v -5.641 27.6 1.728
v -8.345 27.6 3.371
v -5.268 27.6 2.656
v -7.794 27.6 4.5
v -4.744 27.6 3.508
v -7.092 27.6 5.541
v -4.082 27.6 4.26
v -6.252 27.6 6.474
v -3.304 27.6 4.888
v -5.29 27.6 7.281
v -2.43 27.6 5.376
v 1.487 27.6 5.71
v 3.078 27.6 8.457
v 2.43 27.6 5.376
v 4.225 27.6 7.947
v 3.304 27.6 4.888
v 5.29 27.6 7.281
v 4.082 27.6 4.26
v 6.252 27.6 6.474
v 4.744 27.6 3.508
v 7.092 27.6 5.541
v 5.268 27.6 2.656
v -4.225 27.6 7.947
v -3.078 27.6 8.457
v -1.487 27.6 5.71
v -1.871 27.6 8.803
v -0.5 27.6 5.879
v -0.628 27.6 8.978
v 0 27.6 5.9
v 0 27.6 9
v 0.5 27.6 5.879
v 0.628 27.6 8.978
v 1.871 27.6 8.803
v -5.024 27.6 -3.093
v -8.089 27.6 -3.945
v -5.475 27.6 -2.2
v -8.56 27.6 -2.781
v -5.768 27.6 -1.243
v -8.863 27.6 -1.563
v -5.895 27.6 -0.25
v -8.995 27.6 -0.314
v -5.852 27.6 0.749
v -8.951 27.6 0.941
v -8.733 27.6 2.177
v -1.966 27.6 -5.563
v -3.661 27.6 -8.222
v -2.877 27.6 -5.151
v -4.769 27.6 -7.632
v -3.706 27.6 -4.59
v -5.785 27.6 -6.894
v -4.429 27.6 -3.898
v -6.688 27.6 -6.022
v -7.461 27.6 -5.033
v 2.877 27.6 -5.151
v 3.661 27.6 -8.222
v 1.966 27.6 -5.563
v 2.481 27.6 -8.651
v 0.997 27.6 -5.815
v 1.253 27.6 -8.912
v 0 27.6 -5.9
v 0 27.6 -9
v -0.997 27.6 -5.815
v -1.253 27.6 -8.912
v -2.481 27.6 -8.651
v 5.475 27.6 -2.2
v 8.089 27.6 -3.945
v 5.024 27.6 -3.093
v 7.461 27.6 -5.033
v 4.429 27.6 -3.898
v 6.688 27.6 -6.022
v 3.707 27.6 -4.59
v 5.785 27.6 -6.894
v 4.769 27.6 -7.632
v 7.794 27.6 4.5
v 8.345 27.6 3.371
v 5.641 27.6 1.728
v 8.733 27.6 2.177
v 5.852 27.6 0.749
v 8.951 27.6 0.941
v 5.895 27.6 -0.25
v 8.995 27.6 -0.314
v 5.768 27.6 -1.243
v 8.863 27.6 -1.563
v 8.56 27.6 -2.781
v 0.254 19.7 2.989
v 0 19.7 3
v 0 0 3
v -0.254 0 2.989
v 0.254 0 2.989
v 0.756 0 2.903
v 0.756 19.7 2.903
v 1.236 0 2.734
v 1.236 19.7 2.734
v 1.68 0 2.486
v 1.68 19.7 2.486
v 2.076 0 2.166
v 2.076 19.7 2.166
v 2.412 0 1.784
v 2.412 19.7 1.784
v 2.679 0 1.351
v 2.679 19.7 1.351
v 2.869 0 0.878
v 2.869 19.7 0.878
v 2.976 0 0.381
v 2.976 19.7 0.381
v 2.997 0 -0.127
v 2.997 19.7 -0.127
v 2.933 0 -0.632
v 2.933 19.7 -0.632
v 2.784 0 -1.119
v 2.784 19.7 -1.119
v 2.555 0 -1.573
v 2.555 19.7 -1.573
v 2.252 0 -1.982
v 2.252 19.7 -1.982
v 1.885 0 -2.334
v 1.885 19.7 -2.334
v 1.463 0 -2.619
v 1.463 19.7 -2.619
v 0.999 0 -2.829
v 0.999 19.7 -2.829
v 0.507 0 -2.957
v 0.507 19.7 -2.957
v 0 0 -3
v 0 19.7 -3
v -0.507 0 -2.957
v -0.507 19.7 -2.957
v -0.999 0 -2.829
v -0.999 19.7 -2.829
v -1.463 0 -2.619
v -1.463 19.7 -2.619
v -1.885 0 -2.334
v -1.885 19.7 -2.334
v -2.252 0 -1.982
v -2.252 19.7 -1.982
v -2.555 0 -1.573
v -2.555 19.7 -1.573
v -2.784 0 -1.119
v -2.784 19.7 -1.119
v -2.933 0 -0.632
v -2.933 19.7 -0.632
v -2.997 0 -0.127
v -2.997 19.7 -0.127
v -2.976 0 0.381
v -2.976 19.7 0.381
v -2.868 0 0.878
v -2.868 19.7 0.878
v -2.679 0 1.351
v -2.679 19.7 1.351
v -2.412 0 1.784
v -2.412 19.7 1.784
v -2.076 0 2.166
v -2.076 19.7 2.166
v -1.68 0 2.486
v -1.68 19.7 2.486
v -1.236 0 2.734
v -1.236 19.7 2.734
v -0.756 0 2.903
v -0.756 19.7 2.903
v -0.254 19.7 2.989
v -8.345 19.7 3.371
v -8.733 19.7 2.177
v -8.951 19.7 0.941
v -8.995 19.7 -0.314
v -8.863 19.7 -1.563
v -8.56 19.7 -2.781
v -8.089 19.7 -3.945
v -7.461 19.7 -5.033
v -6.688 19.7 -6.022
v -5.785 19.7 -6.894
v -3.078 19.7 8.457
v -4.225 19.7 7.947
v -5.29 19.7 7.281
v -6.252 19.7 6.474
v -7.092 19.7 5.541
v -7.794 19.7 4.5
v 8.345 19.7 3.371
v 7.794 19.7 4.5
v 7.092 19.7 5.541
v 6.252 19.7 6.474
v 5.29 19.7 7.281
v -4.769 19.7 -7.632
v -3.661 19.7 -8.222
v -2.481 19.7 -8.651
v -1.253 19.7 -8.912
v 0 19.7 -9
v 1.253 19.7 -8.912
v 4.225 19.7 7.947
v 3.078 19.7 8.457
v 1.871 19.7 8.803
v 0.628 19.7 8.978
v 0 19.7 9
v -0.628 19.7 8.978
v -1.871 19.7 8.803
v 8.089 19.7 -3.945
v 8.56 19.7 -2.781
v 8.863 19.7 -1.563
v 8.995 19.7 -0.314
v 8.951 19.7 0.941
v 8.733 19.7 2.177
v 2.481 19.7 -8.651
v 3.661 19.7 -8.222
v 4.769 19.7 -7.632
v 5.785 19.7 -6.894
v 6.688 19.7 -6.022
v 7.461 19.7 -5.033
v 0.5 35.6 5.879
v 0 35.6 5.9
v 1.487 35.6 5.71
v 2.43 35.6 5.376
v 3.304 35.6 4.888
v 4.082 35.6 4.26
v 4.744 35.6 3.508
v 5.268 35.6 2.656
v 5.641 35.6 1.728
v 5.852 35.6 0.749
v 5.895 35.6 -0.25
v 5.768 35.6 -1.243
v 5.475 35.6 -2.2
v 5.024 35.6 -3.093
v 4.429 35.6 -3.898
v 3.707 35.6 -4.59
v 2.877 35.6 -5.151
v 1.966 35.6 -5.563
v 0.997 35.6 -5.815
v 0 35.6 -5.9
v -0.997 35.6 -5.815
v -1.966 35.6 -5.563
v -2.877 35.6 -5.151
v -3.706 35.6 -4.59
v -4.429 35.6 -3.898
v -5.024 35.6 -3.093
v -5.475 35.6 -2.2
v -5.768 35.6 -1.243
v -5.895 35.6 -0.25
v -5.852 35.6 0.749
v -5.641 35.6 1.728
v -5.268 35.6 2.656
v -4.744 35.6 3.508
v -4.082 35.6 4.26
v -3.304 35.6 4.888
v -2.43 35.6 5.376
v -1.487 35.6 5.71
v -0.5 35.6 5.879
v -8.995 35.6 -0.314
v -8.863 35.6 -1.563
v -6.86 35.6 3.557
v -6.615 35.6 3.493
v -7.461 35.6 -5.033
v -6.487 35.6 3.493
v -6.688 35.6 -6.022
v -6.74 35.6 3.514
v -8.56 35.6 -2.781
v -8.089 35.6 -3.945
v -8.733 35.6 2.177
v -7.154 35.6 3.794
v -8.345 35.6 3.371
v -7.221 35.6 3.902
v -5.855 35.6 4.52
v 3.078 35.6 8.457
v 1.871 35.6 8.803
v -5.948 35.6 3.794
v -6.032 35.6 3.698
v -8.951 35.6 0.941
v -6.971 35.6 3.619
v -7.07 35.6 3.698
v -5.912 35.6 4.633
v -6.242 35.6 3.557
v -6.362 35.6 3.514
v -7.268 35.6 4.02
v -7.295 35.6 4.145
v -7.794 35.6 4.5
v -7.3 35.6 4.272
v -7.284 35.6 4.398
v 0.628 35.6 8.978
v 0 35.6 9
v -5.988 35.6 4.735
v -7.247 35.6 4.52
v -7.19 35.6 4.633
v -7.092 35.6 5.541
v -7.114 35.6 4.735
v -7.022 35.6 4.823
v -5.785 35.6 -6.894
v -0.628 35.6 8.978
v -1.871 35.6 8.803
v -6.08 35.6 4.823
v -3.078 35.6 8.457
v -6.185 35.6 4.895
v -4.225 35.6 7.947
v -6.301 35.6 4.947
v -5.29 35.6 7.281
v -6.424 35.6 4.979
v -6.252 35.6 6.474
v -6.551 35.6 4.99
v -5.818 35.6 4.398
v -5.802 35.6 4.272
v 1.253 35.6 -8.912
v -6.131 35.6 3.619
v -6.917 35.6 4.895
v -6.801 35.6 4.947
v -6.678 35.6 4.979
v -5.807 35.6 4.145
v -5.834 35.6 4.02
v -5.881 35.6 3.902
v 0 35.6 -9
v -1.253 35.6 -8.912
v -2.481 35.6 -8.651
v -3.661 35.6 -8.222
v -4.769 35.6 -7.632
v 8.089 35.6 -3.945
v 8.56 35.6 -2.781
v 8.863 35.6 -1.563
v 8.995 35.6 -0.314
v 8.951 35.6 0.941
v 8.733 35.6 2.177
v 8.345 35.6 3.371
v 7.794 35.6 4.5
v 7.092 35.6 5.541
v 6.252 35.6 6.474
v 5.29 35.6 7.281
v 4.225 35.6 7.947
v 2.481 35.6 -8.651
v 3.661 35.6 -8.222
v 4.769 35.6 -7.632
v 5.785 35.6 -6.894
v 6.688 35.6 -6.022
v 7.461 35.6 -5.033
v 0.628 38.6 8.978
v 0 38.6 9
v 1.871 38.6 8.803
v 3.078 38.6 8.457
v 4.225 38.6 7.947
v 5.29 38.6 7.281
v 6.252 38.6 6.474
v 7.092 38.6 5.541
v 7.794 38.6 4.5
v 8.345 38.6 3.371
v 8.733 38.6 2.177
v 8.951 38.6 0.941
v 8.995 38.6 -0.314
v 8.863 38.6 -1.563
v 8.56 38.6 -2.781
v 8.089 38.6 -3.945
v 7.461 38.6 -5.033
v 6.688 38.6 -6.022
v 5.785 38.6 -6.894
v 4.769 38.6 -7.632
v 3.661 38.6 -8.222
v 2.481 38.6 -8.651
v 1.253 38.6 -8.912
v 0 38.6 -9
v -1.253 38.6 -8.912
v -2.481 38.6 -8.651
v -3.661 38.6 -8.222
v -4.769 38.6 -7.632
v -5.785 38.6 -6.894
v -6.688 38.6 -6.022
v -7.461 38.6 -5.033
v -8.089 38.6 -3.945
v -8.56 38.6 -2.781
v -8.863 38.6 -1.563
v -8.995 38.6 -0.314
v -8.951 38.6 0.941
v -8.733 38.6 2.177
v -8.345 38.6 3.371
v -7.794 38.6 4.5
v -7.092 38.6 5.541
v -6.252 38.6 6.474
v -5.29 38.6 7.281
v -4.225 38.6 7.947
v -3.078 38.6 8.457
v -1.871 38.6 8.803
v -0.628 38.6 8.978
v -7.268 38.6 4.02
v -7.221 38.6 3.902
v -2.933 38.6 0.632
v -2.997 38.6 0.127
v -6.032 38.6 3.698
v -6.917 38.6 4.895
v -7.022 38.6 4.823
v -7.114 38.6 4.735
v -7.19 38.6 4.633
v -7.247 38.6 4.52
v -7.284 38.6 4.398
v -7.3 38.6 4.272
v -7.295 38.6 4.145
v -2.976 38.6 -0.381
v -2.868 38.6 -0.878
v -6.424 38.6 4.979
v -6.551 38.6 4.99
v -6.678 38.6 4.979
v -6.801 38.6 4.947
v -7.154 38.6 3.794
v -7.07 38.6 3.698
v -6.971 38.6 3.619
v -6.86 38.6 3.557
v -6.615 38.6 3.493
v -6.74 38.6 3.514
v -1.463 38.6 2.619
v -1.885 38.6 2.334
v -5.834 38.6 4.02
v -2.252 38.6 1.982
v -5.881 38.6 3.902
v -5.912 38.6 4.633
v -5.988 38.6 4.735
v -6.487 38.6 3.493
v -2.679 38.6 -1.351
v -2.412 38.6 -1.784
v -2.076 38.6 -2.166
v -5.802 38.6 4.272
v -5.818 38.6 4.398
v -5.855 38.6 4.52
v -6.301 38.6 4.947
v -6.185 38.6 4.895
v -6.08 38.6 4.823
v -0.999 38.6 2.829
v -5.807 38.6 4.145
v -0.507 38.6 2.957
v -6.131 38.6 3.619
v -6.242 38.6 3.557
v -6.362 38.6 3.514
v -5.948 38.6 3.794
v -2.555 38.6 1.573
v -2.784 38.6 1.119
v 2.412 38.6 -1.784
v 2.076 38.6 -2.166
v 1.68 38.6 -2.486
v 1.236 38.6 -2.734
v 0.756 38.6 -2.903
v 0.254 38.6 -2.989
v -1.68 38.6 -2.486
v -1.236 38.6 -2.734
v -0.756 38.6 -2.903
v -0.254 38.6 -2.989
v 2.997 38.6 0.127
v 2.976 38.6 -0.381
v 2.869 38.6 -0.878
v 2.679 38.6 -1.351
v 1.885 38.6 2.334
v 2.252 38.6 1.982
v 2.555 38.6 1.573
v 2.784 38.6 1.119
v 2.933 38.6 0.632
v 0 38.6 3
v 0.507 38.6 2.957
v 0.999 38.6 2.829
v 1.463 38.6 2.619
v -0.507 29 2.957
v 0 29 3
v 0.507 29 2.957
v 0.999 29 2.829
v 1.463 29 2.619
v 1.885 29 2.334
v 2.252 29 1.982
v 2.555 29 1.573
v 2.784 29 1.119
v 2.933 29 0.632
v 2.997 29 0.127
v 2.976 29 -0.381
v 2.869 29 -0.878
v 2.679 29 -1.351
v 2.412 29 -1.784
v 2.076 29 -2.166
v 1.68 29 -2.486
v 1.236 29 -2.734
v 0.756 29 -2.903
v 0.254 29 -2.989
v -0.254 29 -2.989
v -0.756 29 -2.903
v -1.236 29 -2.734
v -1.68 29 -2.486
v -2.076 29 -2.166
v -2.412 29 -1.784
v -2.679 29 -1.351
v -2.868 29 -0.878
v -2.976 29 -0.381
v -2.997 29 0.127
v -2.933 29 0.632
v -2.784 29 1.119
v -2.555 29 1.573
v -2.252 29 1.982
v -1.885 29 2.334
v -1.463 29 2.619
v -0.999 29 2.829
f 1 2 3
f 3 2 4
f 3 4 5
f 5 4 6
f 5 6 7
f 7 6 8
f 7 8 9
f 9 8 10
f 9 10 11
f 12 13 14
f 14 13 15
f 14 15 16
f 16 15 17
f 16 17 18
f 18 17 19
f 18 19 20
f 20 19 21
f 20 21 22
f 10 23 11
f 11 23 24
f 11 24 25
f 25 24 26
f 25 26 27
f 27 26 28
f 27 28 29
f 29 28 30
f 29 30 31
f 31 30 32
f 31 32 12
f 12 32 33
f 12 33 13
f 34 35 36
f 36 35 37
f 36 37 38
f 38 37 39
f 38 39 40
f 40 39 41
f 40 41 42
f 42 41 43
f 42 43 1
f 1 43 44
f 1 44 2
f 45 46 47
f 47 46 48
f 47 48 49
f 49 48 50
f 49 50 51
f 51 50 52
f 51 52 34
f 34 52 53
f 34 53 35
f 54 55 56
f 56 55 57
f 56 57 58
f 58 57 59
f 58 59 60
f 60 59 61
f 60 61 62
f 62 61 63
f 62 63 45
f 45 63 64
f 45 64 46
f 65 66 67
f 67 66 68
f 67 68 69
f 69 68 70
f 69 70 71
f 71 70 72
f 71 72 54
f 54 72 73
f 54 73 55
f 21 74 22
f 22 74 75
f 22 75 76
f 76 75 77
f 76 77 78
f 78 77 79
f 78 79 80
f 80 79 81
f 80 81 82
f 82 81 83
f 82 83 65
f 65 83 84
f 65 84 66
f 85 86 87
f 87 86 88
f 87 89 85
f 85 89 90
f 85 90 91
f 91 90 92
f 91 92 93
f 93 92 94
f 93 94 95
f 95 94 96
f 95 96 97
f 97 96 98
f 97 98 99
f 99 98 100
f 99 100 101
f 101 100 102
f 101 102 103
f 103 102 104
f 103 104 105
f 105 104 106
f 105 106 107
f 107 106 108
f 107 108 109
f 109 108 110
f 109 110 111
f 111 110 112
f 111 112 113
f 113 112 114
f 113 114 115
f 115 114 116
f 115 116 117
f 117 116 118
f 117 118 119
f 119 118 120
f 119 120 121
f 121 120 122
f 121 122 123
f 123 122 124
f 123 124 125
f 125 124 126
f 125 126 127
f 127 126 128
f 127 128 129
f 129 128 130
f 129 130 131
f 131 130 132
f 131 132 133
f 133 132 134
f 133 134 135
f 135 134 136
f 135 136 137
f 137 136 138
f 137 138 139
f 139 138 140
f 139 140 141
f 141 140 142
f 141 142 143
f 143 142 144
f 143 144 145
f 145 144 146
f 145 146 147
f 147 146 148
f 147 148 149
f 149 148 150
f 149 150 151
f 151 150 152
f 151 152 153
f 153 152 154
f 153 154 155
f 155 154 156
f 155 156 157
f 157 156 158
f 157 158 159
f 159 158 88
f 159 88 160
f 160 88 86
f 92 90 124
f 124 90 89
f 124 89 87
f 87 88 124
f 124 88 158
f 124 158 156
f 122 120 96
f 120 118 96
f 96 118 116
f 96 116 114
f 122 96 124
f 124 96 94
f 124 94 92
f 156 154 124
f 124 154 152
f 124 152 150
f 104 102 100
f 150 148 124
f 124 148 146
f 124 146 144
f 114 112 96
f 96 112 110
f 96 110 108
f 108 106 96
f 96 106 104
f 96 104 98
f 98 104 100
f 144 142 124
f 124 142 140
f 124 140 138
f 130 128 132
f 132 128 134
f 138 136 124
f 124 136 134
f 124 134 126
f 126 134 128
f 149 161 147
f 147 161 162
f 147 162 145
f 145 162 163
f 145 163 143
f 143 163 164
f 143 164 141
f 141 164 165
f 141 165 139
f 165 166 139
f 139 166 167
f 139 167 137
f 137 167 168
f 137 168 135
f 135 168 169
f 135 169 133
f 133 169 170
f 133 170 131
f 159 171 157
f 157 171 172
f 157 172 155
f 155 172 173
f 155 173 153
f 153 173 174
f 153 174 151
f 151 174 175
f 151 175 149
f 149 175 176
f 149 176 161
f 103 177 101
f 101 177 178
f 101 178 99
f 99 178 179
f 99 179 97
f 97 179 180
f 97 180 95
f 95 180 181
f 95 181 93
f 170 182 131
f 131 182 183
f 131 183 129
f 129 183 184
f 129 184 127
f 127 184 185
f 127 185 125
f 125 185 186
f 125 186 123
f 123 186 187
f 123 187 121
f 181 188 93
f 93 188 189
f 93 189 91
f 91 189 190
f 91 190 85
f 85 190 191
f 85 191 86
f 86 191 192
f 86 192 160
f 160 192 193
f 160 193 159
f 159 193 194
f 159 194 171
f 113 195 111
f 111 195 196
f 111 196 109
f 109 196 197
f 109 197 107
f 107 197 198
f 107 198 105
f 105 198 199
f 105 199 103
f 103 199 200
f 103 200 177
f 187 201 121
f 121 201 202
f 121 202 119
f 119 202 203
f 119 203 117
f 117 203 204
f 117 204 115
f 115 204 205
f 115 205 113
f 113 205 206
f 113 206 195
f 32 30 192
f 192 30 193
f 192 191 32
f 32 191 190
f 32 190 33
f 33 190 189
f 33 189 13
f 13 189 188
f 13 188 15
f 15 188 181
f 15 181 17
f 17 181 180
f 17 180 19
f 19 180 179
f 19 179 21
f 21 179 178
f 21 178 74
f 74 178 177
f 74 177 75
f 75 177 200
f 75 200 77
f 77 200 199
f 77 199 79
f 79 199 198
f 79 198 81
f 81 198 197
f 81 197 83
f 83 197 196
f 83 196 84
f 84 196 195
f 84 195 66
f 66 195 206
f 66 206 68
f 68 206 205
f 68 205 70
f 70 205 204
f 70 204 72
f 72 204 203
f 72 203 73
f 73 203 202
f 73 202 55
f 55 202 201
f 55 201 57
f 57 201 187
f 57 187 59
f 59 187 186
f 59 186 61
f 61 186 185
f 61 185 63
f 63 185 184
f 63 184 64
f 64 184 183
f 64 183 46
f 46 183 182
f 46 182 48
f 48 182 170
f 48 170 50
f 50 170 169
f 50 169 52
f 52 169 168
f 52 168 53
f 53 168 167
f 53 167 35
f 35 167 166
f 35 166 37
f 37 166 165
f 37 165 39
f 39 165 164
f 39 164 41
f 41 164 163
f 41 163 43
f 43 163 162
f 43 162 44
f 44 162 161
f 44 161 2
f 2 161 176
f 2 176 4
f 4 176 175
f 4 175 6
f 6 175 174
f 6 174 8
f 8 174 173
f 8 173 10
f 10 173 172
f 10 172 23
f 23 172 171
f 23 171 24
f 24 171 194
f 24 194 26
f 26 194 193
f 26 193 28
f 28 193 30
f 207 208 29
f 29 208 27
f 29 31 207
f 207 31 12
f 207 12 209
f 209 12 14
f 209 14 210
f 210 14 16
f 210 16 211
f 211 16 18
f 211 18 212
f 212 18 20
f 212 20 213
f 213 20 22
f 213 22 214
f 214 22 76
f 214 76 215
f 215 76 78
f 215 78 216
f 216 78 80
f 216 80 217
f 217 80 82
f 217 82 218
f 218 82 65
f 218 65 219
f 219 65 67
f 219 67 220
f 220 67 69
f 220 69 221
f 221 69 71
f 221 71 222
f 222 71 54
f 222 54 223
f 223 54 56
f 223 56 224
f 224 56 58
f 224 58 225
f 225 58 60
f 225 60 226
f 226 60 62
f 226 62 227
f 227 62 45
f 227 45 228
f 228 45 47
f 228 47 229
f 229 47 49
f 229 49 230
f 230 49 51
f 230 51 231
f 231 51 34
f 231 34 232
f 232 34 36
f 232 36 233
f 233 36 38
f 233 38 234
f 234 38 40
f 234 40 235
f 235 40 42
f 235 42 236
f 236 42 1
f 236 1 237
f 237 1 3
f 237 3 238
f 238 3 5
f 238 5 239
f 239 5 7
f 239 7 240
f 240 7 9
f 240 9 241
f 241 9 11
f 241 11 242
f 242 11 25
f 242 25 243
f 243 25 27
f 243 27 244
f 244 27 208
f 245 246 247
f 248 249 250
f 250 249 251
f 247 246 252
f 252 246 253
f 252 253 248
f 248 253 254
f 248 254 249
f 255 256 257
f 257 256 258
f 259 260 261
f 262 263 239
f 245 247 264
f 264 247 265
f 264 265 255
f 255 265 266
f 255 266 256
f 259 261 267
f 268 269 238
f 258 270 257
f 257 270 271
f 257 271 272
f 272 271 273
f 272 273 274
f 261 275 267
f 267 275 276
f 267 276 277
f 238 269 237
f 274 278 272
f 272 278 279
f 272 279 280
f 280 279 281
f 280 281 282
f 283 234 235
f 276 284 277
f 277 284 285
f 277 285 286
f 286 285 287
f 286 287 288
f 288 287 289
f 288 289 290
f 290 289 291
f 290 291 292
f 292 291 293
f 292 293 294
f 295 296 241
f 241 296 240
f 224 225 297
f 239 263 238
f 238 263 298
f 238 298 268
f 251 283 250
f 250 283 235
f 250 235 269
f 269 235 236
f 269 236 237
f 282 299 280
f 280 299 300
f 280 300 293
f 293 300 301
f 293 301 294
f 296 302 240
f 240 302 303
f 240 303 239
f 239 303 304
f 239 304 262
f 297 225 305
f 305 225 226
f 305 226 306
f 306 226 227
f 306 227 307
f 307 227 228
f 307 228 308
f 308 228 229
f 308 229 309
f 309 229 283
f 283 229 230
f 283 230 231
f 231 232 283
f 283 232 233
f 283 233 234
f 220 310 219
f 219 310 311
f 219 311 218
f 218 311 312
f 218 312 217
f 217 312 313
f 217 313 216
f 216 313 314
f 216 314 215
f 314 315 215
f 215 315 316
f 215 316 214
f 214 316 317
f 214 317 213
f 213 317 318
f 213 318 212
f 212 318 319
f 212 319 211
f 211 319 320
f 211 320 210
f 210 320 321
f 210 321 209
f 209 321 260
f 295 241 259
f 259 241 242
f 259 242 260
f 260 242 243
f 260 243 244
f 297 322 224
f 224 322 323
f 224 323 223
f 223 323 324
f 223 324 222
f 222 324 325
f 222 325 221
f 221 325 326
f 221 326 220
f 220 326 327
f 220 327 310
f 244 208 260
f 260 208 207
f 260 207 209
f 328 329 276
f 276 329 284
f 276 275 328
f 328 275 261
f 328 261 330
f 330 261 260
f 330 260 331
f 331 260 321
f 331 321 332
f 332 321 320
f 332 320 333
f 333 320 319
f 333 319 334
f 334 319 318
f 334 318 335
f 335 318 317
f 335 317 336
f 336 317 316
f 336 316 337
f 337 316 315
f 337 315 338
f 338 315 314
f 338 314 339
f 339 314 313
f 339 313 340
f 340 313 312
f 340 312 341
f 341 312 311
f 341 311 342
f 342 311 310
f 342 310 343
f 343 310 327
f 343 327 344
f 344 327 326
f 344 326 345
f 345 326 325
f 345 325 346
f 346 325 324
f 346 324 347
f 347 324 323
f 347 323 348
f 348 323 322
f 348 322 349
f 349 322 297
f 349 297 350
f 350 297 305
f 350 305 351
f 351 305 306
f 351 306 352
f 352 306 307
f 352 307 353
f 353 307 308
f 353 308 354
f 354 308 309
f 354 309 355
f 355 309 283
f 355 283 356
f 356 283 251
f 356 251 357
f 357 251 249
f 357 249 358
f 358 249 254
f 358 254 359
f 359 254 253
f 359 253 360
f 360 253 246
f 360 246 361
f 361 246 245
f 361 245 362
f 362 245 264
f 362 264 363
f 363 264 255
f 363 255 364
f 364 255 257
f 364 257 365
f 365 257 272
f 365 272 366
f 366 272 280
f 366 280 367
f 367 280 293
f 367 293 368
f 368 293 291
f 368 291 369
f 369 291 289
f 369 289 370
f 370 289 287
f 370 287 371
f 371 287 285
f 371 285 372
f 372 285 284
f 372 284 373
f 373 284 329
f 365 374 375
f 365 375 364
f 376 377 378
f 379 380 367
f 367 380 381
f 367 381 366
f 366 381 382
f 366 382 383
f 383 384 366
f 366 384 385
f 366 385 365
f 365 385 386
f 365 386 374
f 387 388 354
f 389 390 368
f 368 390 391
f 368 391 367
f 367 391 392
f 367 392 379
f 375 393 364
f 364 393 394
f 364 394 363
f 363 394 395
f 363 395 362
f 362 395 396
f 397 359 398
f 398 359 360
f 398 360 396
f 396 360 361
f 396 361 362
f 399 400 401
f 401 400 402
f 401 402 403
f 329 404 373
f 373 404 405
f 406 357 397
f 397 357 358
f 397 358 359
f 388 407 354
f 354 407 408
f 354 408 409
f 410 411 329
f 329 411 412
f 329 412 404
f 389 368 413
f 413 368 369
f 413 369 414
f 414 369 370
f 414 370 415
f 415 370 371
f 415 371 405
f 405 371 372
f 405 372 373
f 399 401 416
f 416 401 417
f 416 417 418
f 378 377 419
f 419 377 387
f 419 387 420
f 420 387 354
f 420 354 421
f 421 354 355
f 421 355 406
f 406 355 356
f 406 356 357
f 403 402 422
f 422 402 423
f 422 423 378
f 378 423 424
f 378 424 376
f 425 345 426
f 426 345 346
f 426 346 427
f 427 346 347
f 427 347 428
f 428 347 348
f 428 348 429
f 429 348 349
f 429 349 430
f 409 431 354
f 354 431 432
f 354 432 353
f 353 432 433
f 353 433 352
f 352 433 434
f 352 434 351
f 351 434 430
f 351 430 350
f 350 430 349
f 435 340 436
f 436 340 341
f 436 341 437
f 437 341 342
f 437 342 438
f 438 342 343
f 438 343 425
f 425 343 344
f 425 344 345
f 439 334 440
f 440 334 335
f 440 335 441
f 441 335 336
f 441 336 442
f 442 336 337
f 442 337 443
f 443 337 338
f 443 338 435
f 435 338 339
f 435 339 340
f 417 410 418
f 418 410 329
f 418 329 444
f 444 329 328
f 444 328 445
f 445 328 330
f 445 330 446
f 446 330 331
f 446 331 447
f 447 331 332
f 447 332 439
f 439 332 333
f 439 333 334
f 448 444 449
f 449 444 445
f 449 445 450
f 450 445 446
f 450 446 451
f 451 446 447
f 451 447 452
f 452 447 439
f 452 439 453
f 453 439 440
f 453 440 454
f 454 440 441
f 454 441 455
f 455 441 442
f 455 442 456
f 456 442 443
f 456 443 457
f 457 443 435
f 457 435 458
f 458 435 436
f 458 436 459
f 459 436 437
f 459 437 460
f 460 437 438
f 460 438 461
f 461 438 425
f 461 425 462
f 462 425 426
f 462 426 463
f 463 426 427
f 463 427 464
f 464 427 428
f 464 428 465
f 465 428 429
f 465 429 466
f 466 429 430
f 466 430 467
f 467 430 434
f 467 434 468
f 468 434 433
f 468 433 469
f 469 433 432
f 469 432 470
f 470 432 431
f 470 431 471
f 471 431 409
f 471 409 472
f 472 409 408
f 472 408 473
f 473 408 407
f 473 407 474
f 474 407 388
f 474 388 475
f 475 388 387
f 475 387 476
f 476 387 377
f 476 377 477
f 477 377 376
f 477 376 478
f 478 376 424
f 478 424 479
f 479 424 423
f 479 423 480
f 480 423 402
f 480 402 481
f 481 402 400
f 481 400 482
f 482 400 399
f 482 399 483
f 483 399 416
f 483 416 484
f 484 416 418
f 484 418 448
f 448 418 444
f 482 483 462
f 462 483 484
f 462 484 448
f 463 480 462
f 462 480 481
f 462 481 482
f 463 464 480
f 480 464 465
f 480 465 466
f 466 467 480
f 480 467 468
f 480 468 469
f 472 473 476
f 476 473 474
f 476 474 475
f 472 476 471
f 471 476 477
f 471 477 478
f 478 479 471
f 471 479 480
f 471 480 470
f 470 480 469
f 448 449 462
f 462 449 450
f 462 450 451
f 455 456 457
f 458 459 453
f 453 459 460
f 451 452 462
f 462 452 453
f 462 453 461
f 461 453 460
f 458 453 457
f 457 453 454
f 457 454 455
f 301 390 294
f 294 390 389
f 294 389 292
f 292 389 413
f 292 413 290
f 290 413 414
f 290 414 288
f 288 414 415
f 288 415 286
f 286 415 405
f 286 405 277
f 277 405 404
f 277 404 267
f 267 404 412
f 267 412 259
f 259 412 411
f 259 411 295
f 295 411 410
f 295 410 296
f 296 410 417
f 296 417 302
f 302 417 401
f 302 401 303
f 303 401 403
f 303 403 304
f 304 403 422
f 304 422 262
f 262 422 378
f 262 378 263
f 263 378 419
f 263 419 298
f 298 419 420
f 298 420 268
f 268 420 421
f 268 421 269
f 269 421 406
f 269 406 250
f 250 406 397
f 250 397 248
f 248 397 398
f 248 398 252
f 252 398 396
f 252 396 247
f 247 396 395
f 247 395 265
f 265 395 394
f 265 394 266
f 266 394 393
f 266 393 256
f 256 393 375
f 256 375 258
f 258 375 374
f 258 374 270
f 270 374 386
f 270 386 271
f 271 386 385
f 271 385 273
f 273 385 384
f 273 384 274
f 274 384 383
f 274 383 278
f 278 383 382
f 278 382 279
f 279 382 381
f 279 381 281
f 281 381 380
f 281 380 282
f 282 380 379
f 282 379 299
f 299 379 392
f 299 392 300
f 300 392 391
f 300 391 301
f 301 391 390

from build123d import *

# Parameters (mm, degrees)
SKETCH1_R           = 3
BOSS_EXTRUDE1_DEPTH = 19.7
SKETCH2_R           = 9
BOSS_EXTRUDE2_DEPTH = 7.9
SKETCH3_R           = 5.9
BOSS_EXTRUDE3_DEPTH = 8
SKETCH4_R           = 9
BOSS_EXTRUDE4_DEPTH = 3
SKETCH5_R           = 3
CUT_EXTRUDE1_DEPTH  = 9.6
SKETCH7_R           = 0.75
CUT_EXTRUDE2_DEPTH  = 10


with BuildPart() as part:
    # Sketch1 → Boss-Extrude1 (new body)
    with BuildSketch(Plane(origin=(0, 0, 0), x_dir=(1, 0, 0), z_dir=(0, 1, 0))):
        Circle(SKETCH1_R)
    extrude(amount=BOSS_EXTRUDE1_DEPTH)

    # Sketch2 → Boss-Extrude2 (add)
    with BuildSketch(Plane(origin=(0, 19.7, 0), x_dir=(1, 0, 0), z_dir=(0, 1, 0))):
        Circle(SKETCH2_R)
    extrude(amount=BOSS_EXTRUDE2_DEPTH)

    # Sketch3 → Boss-Extrude3 (add)
    with BuildSketch(Plane(origin=(0, 27.6, 0), x_dir=(1, 0, 0), z_dir=(0, 1, 0))):
        Circle(SKETCH3_R)
    extrude(amount=BOSS_EXTRUDE3_DEPTH)

    # Sketch4 → Boss-Extrude4 (add)
    with BuildSketch(Plane(origin=(0, 35.6, 0), x_dir=(1, 0, 0), z_dir=(0, 1, 0))):
        Circle(SKETCH4_R)
    extrude(amount=BOSS_EXTRUDE4_DEPTH)

    # Sketch5 → Cut-Extrude1 (cut)
    with BuildSketch(Plane(origin=(0, 38.6, 0), x_dir=(1, 0, 0), z_dir=(0, 1, 0))):
        Circle(SKETCH5_R)
    extrude(amount=-CUT_EXTRUDE1_DEPTH, mode=Mode.SUBTRACT)

    # Sketch7 → Cut-Extrude2 (cut)
    with BuildSketch(Plane(origin=(0, 38.6, 0), x_dir=(1, 0, 0), z_dir=(0, 1, 0))):
        with Locations((-6.55100535, -4.239956241)):
            Circle(SKETCH7_R)
    extrude(amount=-CUT_EXTRUDE2_DEPTH, mode=Mode.SUBTRACT)


solid = part.part
